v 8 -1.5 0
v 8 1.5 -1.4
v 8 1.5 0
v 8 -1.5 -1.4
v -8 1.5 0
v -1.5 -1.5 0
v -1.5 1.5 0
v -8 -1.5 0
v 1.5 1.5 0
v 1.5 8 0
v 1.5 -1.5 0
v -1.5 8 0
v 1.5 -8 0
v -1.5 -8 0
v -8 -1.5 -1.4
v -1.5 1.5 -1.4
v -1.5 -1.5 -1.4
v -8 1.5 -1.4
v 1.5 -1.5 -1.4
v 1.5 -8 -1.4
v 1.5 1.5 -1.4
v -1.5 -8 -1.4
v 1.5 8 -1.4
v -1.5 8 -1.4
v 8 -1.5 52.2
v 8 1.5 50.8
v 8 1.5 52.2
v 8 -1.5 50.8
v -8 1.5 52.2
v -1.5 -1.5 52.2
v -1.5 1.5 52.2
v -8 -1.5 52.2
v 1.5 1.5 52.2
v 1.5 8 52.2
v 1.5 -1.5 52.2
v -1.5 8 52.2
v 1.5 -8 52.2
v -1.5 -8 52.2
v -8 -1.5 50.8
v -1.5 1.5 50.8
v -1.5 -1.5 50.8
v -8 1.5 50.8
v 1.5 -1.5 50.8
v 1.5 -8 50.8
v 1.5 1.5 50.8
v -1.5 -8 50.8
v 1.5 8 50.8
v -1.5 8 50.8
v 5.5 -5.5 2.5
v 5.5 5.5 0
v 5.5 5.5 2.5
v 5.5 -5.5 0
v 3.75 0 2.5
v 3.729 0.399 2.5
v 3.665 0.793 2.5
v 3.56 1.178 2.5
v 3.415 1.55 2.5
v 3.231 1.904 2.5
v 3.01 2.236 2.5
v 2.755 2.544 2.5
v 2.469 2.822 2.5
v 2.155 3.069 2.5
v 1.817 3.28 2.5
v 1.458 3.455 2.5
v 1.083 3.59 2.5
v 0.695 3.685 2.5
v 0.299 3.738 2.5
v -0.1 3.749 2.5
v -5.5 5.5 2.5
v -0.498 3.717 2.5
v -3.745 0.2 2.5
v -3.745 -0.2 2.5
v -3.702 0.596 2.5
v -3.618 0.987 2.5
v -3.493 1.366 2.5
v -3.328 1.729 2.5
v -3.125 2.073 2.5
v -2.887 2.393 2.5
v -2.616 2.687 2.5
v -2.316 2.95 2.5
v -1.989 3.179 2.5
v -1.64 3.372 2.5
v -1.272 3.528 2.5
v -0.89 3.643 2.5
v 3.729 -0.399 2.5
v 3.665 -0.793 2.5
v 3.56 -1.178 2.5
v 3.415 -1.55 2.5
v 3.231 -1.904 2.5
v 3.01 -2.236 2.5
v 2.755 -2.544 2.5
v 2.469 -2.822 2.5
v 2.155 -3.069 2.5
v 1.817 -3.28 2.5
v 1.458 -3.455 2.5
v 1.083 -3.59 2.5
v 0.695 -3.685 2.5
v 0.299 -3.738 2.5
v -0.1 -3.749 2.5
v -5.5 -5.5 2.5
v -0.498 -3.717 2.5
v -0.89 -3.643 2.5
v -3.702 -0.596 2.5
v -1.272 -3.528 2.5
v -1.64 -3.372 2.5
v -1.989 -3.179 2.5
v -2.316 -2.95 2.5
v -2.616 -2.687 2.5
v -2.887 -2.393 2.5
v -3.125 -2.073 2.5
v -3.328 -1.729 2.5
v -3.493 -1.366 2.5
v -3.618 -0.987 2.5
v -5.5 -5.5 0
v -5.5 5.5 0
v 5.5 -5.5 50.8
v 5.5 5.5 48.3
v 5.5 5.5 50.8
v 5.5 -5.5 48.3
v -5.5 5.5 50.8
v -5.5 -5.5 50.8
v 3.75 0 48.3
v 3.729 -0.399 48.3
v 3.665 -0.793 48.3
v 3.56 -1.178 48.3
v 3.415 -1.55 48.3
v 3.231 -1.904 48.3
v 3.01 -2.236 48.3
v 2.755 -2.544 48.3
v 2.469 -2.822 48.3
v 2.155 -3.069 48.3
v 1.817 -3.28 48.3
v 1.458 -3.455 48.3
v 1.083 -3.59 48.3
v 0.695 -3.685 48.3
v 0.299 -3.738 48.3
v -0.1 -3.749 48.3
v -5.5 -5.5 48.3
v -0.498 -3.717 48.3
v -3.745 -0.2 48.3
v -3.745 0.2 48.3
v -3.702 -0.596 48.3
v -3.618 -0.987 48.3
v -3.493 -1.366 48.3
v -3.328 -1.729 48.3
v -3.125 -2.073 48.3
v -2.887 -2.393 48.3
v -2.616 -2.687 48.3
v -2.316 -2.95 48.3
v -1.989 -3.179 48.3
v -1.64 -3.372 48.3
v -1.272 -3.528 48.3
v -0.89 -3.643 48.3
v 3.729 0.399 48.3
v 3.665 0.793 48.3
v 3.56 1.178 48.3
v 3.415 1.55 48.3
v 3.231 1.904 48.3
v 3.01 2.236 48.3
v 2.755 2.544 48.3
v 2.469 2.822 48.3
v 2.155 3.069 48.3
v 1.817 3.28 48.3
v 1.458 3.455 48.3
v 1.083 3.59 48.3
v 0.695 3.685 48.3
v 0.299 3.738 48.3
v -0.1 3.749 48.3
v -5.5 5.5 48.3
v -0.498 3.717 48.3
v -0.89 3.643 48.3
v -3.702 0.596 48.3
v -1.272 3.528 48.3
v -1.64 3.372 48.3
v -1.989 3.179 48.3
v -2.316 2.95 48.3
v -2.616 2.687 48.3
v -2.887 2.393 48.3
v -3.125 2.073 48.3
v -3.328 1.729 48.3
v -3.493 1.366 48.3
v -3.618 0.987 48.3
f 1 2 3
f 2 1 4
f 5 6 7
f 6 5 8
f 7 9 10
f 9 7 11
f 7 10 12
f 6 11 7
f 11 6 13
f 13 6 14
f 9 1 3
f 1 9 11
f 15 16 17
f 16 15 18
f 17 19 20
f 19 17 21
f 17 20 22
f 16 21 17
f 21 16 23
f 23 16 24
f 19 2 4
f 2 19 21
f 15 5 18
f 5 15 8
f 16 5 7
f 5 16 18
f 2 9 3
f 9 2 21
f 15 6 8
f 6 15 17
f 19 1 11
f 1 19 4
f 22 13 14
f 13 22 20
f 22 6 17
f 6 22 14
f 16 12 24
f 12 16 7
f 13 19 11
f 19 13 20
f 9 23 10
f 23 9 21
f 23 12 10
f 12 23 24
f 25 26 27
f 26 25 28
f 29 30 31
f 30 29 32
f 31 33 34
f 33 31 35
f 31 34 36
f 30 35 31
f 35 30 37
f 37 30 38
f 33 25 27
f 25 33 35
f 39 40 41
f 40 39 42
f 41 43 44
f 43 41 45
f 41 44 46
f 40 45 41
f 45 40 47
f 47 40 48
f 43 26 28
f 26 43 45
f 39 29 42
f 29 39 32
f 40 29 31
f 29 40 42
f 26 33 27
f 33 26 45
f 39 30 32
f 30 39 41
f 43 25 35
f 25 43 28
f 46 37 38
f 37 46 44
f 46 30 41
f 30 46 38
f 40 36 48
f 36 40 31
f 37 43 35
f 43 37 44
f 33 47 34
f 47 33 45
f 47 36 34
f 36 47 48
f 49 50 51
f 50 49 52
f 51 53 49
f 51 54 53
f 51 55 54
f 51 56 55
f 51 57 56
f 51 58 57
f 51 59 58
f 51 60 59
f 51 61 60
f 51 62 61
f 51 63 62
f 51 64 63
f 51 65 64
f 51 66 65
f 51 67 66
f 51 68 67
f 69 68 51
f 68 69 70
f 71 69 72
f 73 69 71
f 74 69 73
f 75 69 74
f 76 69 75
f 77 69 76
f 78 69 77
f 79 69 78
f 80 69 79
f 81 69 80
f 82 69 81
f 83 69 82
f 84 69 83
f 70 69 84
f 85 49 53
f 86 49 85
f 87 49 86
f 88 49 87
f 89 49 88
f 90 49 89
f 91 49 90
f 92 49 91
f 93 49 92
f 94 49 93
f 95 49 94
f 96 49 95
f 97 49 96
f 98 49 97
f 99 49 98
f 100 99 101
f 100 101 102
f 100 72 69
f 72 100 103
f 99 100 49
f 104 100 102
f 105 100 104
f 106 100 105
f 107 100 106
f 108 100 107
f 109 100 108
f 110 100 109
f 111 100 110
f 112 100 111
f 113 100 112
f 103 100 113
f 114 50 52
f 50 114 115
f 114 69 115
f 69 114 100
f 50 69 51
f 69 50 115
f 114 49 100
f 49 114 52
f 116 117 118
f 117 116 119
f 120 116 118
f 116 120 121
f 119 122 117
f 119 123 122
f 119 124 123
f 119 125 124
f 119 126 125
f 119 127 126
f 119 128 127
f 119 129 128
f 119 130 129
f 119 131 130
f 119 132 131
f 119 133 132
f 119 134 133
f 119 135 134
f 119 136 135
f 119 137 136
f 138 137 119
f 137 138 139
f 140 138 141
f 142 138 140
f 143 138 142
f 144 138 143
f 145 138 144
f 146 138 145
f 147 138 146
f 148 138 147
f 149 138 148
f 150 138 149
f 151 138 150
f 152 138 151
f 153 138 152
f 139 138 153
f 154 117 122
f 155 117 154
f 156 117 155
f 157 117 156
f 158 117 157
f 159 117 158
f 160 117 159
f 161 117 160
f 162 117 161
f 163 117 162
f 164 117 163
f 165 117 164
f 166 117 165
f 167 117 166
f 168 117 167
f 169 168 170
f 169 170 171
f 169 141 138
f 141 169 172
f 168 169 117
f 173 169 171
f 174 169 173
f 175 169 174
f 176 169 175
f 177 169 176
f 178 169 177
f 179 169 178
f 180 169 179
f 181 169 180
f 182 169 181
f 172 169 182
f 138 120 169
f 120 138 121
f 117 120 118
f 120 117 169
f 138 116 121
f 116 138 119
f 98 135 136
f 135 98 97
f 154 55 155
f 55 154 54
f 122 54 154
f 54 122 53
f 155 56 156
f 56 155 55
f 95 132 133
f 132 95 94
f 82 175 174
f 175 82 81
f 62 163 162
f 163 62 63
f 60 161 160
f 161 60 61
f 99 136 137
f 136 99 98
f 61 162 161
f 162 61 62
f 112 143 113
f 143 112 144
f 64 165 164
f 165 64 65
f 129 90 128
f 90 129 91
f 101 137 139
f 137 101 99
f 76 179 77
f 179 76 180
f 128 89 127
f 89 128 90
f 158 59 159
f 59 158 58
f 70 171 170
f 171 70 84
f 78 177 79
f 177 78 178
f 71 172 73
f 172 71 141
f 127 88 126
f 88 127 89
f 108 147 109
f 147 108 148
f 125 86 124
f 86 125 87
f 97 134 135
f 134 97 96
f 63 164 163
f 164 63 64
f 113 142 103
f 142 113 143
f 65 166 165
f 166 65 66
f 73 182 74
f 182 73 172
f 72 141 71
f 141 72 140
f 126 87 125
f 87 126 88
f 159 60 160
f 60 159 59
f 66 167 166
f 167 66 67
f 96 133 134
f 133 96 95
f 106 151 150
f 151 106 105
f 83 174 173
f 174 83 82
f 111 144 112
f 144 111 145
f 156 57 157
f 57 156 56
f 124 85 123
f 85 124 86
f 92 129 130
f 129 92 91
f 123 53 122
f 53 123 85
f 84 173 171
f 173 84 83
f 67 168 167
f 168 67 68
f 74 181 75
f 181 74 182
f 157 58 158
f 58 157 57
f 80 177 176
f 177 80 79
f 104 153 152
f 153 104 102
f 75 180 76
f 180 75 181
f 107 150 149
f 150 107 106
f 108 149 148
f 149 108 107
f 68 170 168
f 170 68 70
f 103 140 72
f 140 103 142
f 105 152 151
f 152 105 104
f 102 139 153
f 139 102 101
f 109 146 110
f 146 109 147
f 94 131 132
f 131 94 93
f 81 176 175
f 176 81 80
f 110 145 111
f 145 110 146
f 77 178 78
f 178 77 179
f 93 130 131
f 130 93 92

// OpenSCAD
// file: ../lib/connectors.scad
// connectors.scad — shared connector geometry.
// Requires grid.scad to be included first.
//
// Convention: a connector lives on an edge face lying in the YZ plane
// at x = 0, centered on y = 0, with the piece's material on the -X
// side for male parts and the +X side for female parts. Pieces
// translate/rotate these modules into position.
//
// All fit-critical dimensions here are ABSOLUTE (see grid.scad).

// Tab & slot (puzzle-style dovetail, full piece thickness).
TAB_NECK  = 6;    // width at the edge face
TAB_HEAD  = 10;   // width at the tip
TAB_DEPTH = 6;    // how far the tab projects

// Dowel pin (1.75mm filament offcuts make free pins).
DOWEL_D     = 1.85;
DOWEL_DEPTH = 6;

// Magnet pocket. Named size "DxH" in mm.
MAGNET = "5x2";
function magnet_d(m = MAGNET) =
    m == "3x2" ? 3 : m == "6x2" ? 6 : m == "8x3" ? 8 : 5;
function magnet_h(m = MAGNET) =
    m == "8x3" ? 3 : 2;

// Dovetail profile, projecting toward +X. grow > 0 loosens the female.
module tab_profile(grow = 0) {
    polygon([
        [-EPS,             -(TAB_NECK / 2 + grow)],
        [TAB_DEPTH + grow, -(TAB_HEAD / 2 + grow)],
        [TAB_DEPTH + grow,   TAB_HEAD / 2 + grow],
        [-EPS,               TAB_NECK / 2 + grow]
    ]);
}

// Male tab: union onto a piece whose edge face is at x = 0.
module tab_male(thickness) {
    linear_extrude(height = thickness) tab_profile(0);
}

// Female slot: subtract from a piece whose edge face is at x = 0,
// material on +X. Mirrored so the slot opens toward -X... the mating
// piece slides in from outside the edge.
module tab_female(thickness, clearance = fit_clearance()) {
    translate([0, 0, -EPS])
        linear_extrude(height = thickness + 2 * EPS)
            mirror([1, 0, 0]) tab_profile(clearance);
}

// Cylindrical pocket bored into an edge face at x = 0, material on +X,
// axis along +X, centered at height z.
module edge_pocket(d, depth, z) {
    translate([-EPS, 0, z])
        rotate([0, 90, 0])
            cylinder(h = depth + EPS, d = d);
}

// Magnet pocket (female on both mating pieces). Slight extra depth so
// the magnet seats flush after glue.
module magnet_pocket(z, m = MAGNET, clearance = fit_clearance()) {
    edge_pocket(magnet_d(m) + clearance, magnet_h(m) + 0.1, z);
}

// Dowel hole (female on both mating pieces).
module dowel_hole(z, clearance = fit_clearance()) {
    edge_pocket(DOWEL_D + clearance, DOWEL_DEPTH, z);
}
// file: ../lib/grid.scad
// grid.scad — core grid, scale, and tolerance foundation.
// Every piece in the system includes this file.
//
// Two classes of dimension, never mixed:
//   scaled()  — aesthetic sizes; follow SCALE so kits can be resized.
//   absolute  — fit-critical sizes (clearances, magnet pockets, pin
//               holes); constant regardless of SCALE.

// One tabletop grid square. 25.4mm (1 inch) keeps pieces in register
// with battlemats and standard 2-inch tile systems. Change once to
// retarget the whole library (e.g. 32 for a 32mm module standard).
GRID_UNIT = 25.4;

// Aesthetic scale multiplier (1.0 = 28mm heroic terrain).
SCALE = 1.0;

// Default structural sizes (scaled, mm at SCALE = 1.0).
FLOOR_THICKNESS   = 4;
WALL_THICKNESS    = 6;
WALL_HEIGHT_UNITS = 2;   // wall height in grid units

// Fit preset: "tight" | "normal" | "loose". Absolute mm — never scaled.
FIT = "normal";

function fit_clearance(fit = FIT) =
    fit == "tight" ? 0.10 :
    fit == "loose" ? 0.25 :
                     0.15;

// Helpers.
function scaled(x) = x * SCALE;
function grid(n)   = n * GRID_UNIT * SCALE;

// Boolean-overlap epsilon for clean CSG.
EPS = 0.01;

// Curve quality.
$fa = 4;
$fs = 0.4;
// main file
// column.scad — storey-height column with cross tenons that drop into
// the groove-channel crossings of floors (below) and decks (above).
include <../lib/grid.scad>
include <../lib/connectors.scad>
include <../lib/pieces.scad>

column();
